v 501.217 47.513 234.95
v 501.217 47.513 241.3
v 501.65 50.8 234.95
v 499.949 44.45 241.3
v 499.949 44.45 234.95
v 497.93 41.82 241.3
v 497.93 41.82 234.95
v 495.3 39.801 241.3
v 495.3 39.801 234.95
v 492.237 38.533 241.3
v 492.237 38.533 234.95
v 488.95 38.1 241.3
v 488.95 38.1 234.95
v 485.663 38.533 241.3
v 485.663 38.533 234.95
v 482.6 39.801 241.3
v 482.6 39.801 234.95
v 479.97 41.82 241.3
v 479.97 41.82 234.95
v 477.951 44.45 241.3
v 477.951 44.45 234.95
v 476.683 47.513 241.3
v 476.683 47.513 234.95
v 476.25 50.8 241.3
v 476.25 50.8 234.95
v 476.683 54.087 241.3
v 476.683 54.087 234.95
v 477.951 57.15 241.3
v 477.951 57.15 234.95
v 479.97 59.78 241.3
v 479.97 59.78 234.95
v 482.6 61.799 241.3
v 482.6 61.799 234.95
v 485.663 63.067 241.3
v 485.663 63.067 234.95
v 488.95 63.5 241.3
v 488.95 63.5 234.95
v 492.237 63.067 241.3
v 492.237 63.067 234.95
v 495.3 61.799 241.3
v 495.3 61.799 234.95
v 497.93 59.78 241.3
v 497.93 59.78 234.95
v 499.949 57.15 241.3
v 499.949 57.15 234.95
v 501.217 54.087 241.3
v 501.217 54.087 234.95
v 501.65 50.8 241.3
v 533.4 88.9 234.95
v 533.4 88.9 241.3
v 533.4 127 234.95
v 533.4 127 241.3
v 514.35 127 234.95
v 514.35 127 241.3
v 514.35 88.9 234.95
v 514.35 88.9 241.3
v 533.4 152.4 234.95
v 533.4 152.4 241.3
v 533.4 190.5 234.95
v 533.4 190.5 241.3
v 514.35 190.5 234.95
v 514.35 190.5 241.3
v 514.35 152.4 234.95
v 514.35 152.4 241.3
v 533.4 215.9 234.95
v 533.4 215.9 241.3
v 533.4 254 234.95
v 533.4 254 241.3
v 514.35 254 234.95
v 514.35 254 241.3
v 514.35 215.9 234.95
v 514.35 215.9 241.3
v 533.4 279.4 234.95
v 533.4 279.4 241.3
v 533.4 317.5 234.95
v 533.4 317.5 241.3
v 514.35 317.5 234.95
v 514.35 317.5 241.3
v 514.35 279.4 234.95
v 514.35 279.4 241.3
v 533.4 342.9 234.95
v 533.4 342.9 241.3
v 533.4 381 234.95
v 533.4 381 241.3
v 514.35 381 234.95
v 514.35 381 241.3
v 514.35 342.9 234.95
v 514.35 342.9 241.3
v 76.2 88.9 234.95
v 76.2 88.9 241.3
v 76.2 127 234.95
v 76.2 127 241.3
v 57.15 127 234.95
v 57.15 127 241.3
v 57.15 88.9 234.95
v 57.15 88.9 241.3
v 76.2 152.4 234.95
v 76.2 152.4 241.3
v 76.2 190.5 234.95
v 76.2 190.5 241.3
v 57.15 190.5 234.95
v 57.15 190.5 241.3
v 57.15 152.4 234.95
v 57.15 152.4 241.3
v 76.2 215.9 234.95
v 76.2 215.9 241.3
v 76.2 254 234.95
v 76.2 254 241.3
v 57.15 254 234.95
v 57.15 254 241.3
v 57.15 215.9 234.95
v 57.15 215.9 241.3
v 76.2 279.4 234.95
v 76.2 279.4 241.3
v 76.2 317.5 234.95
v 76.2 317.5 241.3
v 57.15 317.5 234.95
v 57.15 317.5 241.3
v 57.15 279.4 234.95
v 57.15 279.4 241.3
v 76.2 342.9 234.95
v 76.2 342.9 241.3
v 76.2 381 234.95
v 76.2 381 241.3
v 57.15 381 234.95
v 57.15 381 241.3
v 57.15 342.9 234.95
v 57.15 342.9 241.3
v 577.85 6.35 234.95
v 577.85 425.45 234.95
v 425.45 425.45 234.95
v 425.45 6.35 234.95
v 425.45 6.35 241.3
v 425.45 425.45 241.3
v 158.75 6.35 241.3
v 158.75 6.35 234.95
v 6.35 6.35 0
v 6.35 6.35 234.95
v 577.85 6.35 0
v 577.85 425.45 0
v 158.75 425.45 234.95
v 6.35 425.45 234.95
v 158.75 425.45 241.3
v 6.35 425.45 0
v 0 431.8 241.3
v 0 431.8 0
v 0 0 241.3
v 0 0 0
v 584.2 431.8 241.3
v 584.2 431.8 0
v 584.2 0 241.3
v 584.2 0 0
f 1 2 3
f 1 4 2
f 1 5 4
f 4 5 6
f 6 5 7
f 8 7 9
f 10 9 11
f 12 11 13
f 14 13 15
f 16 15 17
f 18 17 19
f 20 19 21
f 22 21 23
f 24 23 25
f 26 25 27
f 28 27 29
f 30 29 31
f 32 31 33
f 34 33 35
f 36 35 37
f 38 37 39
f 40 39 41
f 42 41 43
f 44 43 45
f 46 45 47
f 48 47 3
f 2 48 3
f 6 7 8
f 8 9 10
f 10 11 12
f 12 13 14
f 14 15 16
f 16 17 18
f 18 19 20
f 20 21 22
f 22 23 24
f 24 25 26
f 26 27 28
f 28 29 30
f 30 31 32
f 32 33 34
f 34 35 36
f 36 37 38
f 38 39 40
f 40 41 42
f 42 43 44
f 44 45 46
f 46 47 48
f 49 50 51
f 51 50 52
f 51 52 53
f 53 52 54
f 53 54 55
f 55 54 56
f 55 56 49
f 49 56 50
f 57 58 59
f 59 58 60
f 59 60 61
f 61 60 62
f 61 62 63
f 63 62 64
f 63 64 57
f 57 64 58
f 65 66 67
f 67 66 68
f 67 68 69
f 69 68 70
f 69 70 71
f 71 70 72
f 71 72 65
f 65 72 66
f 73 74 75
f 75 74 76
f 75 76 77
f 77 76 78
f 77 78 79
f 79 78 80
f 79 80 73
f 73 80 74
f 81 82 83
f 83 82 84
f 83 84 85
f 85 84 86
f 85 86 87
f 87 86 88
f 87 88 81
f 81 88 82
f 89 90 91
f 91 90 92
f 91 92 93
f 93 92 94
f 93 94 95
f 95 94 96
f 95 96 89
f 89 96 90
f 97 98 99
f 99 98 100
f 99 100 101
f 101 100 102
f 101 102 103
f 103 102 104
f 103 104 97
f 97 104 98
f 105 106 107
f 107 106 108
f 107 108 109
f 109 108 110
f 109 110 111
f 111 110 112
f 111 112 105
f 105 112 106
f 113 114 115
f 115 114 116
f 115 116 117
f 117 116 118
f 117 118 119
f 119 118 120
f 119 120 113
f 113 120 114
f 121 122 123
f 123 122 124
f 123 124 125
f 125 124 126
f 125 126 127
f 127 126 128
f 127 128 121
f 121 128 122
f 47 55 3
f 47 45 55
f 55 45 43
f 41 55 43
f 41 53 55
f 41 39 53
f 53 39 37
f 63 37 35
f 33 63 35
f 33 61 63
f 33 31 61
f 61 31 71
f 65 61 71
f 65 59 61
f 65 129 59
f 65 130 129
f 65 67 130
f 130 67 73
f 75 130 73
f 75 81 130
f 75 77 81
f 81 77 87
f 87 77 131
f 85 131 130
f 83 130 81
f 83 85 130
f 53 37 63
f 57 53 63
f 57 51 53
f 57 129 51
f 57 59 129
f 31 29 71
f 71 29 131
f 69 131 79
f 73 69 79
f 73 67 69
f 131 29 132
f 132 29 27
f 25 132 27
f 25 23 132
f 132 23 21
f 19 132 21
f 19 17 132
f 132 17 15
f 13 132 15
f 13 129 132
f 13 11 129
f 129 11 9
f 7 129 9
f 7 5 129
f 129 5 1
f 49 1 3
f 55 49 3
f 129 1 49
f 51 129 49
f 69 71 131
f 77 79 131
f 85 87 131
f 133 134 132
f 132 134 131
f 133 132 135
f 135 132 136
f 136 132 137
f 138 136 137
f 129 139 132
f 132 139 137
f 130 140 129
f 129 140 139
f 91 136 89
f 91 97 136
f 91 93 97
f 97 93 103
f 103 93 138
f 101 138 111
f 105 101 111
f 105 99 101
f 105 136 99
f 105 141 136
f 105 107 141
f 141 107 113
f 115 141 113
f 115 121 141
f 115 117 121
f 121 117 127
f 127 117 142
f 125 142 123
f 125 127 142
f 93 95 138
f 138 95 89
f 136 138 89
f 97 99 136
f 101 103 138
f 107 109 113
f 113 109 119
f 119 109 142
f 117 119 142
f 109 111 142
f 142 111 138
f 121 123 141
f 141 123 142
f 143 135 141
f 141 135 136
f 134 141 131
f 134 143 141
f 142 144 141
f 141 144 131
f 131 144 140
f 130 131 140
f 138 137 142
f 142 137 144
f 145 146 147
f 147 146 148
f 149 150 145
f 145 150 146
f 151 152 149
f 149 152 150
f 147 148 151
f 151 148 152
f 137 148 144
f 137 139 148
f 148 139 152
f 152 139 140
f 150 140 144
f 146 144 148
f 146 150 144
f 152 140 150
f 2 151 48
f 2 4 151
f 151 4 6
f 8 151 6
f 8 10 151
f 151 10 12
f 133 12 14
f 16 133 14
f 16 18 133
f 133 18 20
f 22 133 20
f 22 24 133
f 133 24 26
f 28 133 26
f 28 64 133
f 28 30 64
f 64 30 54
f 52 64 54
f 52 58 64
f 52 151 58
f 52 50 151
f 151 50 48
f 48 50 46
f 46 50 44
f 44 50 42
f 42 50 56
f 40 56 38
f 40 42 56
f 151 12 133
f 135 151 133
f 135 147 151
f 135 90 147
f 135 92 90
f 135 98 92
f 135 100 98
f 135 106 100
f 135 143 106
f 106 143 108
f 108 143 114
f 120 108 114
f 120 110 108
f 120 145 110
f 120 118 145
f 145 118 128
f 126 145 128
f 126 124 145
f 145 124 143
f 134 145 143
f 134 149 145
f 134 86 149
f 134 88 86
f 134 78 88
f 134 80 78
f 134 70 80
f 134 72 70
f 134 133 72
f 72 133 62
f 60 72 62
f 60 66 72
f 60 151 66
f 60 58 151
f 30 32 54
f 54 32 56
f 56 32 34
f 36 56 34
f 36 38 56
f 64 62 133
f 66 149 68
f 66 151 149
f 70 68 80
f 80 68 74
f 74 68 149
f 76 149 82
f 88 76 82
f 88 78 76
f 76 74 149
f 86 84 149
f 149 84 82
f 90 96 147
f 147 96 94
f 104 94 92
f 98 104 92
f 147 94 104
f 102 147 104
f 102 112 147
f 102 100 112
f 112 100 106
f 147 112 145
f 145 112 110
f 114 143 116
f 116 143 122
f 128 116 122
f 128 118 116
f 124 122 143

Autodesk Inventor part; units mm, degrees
ref_plane "YZ Plane" through (0, 0, 0) normal (1, 0, 0) x (0, 1, 0)
ref_plane "XZ Plane" through (0, 0, 0) normal (0, 1, 0) x (-1, 0, 0)
ref_plane "XY Plane" through (0, 0, 0) normal (0, 0, 1) x (1, 0, 0)
sketch "Sketch1" plane through (0, 0, 0) normal (0, 0, 1) x (1, 0, 0)
  line L0 (0, 0) -> (584.2, 0)
  line L1 (584.2, 0) -> (584.2, 431.8)
  line L2 (584.2, 431.8) -> (0, 431.8)
  line L3 (0, 431.8) -> (0, 0)
  line L4 (6.35, 6.35) -> (577.85, 6.35)
  line L5 (577.85, 6.35) -> (577.85, 425.45)
  line L6 (577.85, 425.45) -> (6.35, 425.45)
  line L7 (6.35, 425.45) -> (6.35, 6.35)
  dimension "d0" = 6.35
  dimension "d1" = 6.35
  dimension "d2" = 6.35
  dimension "d3" = 6.35
  dimension "d4" = 584.2
  dimension "d5" = 431.8
extrude "Extrusion1" add sketch "Sketch1" along normal blind 241.3
sketch "Sketch2" plane through (6.35, 6.35, 241.3) normal (1, 0, 0) x (0, 0, -1)
  line L0 (0, 0) -> (0, 419.1) projected
  line L1 (241.3, 0) -> (0, 0) projected
  line L2 (0, 419.1) -> (6.35, 419.1)
  line L3 (6.35, 419.1) -> (6.35, 0)
  line L4 (6.35, 0) -> (0, 0)
  line L5 (0, 0) -> (0, 419.1)
  point P0 (241.3, -6.35)
  dimension "d8" = 6.35
extrude "Extrusion2" add sketch "Sketch2" along normal blind 152.4
sketch "Sketch3" plane through (577.85, 6.35, 241.3) normal (-1, 0, 0) x (0, 0, 1)
  line L0 (0, 419.1) -> (0, 0) projected
  line L1 (-241.3, 419.1) -> (0, 419.1) projected
  line L2 (0, 0) -> (-6.35, 0)
  line L3 (-6.35, 0) -> (-6.35, 419.1)
  line L4 (-6.35, 419.1) -> (0, 419.1)
  line L5 (0, 419.1) -> (0, 0)
  point P0 (-241.3, -6.35)
  dimension "d11" = 6.35
extrude "Extrusion3" add sketch "Sketch3" along normal blind 152.4
sketch "Sketch4" plane through (0, 0, 241.3) normal (0, 0, 1) x (1, 0, 0)
  line L0 (57.15, 381) -> (76.2, 381)
  line L1 (76.2, 381) -> (76.2, 342.9)
  line L2 (76.2, 342.9) -> (57.15, 342.9)
  line L3 (57.15, 342.9) -> (57.15, 381)
  line L4 (0, 0) -> (0, 431.8) projected
  line L5 (0, 431.8) -> (584.2, 431.8) projected
  dimension "d14" = 19.05
  dimension "d15" = 38.1
  dimension "d29" = 57.15
  dimension "d30" = 50.8
extrude "Extrusion4" cut sketch "Sketch4" against normal up to next
pattern_linear "Rectangular Pattern1" count 5 spacing 63.5 along (0, -1, 0) count 2 spacing 457.2 along (1, 0, 0) of "Extrusion4"
sketch "Sketch5" plane through (0, 0, 241.3) normal (0, 0, 1) x (1, 0, 0)
  line L0 (425.45, 425.45) -> (425.45, 6.35) projected
  line L1 (584.2, 0) -> (0, 0) projected
  circle A0 centre (488.95, 50.8) radius 12.7
  dimension "d24" = 25.4
  dimension "d25" = 63.5
  dimension "d26" = 50.8
extrude "Extrusion5" cut sketch "Sketch5" against normal up to next
properties part number "Board_Final_Concept" material "Wood (Birch)"
